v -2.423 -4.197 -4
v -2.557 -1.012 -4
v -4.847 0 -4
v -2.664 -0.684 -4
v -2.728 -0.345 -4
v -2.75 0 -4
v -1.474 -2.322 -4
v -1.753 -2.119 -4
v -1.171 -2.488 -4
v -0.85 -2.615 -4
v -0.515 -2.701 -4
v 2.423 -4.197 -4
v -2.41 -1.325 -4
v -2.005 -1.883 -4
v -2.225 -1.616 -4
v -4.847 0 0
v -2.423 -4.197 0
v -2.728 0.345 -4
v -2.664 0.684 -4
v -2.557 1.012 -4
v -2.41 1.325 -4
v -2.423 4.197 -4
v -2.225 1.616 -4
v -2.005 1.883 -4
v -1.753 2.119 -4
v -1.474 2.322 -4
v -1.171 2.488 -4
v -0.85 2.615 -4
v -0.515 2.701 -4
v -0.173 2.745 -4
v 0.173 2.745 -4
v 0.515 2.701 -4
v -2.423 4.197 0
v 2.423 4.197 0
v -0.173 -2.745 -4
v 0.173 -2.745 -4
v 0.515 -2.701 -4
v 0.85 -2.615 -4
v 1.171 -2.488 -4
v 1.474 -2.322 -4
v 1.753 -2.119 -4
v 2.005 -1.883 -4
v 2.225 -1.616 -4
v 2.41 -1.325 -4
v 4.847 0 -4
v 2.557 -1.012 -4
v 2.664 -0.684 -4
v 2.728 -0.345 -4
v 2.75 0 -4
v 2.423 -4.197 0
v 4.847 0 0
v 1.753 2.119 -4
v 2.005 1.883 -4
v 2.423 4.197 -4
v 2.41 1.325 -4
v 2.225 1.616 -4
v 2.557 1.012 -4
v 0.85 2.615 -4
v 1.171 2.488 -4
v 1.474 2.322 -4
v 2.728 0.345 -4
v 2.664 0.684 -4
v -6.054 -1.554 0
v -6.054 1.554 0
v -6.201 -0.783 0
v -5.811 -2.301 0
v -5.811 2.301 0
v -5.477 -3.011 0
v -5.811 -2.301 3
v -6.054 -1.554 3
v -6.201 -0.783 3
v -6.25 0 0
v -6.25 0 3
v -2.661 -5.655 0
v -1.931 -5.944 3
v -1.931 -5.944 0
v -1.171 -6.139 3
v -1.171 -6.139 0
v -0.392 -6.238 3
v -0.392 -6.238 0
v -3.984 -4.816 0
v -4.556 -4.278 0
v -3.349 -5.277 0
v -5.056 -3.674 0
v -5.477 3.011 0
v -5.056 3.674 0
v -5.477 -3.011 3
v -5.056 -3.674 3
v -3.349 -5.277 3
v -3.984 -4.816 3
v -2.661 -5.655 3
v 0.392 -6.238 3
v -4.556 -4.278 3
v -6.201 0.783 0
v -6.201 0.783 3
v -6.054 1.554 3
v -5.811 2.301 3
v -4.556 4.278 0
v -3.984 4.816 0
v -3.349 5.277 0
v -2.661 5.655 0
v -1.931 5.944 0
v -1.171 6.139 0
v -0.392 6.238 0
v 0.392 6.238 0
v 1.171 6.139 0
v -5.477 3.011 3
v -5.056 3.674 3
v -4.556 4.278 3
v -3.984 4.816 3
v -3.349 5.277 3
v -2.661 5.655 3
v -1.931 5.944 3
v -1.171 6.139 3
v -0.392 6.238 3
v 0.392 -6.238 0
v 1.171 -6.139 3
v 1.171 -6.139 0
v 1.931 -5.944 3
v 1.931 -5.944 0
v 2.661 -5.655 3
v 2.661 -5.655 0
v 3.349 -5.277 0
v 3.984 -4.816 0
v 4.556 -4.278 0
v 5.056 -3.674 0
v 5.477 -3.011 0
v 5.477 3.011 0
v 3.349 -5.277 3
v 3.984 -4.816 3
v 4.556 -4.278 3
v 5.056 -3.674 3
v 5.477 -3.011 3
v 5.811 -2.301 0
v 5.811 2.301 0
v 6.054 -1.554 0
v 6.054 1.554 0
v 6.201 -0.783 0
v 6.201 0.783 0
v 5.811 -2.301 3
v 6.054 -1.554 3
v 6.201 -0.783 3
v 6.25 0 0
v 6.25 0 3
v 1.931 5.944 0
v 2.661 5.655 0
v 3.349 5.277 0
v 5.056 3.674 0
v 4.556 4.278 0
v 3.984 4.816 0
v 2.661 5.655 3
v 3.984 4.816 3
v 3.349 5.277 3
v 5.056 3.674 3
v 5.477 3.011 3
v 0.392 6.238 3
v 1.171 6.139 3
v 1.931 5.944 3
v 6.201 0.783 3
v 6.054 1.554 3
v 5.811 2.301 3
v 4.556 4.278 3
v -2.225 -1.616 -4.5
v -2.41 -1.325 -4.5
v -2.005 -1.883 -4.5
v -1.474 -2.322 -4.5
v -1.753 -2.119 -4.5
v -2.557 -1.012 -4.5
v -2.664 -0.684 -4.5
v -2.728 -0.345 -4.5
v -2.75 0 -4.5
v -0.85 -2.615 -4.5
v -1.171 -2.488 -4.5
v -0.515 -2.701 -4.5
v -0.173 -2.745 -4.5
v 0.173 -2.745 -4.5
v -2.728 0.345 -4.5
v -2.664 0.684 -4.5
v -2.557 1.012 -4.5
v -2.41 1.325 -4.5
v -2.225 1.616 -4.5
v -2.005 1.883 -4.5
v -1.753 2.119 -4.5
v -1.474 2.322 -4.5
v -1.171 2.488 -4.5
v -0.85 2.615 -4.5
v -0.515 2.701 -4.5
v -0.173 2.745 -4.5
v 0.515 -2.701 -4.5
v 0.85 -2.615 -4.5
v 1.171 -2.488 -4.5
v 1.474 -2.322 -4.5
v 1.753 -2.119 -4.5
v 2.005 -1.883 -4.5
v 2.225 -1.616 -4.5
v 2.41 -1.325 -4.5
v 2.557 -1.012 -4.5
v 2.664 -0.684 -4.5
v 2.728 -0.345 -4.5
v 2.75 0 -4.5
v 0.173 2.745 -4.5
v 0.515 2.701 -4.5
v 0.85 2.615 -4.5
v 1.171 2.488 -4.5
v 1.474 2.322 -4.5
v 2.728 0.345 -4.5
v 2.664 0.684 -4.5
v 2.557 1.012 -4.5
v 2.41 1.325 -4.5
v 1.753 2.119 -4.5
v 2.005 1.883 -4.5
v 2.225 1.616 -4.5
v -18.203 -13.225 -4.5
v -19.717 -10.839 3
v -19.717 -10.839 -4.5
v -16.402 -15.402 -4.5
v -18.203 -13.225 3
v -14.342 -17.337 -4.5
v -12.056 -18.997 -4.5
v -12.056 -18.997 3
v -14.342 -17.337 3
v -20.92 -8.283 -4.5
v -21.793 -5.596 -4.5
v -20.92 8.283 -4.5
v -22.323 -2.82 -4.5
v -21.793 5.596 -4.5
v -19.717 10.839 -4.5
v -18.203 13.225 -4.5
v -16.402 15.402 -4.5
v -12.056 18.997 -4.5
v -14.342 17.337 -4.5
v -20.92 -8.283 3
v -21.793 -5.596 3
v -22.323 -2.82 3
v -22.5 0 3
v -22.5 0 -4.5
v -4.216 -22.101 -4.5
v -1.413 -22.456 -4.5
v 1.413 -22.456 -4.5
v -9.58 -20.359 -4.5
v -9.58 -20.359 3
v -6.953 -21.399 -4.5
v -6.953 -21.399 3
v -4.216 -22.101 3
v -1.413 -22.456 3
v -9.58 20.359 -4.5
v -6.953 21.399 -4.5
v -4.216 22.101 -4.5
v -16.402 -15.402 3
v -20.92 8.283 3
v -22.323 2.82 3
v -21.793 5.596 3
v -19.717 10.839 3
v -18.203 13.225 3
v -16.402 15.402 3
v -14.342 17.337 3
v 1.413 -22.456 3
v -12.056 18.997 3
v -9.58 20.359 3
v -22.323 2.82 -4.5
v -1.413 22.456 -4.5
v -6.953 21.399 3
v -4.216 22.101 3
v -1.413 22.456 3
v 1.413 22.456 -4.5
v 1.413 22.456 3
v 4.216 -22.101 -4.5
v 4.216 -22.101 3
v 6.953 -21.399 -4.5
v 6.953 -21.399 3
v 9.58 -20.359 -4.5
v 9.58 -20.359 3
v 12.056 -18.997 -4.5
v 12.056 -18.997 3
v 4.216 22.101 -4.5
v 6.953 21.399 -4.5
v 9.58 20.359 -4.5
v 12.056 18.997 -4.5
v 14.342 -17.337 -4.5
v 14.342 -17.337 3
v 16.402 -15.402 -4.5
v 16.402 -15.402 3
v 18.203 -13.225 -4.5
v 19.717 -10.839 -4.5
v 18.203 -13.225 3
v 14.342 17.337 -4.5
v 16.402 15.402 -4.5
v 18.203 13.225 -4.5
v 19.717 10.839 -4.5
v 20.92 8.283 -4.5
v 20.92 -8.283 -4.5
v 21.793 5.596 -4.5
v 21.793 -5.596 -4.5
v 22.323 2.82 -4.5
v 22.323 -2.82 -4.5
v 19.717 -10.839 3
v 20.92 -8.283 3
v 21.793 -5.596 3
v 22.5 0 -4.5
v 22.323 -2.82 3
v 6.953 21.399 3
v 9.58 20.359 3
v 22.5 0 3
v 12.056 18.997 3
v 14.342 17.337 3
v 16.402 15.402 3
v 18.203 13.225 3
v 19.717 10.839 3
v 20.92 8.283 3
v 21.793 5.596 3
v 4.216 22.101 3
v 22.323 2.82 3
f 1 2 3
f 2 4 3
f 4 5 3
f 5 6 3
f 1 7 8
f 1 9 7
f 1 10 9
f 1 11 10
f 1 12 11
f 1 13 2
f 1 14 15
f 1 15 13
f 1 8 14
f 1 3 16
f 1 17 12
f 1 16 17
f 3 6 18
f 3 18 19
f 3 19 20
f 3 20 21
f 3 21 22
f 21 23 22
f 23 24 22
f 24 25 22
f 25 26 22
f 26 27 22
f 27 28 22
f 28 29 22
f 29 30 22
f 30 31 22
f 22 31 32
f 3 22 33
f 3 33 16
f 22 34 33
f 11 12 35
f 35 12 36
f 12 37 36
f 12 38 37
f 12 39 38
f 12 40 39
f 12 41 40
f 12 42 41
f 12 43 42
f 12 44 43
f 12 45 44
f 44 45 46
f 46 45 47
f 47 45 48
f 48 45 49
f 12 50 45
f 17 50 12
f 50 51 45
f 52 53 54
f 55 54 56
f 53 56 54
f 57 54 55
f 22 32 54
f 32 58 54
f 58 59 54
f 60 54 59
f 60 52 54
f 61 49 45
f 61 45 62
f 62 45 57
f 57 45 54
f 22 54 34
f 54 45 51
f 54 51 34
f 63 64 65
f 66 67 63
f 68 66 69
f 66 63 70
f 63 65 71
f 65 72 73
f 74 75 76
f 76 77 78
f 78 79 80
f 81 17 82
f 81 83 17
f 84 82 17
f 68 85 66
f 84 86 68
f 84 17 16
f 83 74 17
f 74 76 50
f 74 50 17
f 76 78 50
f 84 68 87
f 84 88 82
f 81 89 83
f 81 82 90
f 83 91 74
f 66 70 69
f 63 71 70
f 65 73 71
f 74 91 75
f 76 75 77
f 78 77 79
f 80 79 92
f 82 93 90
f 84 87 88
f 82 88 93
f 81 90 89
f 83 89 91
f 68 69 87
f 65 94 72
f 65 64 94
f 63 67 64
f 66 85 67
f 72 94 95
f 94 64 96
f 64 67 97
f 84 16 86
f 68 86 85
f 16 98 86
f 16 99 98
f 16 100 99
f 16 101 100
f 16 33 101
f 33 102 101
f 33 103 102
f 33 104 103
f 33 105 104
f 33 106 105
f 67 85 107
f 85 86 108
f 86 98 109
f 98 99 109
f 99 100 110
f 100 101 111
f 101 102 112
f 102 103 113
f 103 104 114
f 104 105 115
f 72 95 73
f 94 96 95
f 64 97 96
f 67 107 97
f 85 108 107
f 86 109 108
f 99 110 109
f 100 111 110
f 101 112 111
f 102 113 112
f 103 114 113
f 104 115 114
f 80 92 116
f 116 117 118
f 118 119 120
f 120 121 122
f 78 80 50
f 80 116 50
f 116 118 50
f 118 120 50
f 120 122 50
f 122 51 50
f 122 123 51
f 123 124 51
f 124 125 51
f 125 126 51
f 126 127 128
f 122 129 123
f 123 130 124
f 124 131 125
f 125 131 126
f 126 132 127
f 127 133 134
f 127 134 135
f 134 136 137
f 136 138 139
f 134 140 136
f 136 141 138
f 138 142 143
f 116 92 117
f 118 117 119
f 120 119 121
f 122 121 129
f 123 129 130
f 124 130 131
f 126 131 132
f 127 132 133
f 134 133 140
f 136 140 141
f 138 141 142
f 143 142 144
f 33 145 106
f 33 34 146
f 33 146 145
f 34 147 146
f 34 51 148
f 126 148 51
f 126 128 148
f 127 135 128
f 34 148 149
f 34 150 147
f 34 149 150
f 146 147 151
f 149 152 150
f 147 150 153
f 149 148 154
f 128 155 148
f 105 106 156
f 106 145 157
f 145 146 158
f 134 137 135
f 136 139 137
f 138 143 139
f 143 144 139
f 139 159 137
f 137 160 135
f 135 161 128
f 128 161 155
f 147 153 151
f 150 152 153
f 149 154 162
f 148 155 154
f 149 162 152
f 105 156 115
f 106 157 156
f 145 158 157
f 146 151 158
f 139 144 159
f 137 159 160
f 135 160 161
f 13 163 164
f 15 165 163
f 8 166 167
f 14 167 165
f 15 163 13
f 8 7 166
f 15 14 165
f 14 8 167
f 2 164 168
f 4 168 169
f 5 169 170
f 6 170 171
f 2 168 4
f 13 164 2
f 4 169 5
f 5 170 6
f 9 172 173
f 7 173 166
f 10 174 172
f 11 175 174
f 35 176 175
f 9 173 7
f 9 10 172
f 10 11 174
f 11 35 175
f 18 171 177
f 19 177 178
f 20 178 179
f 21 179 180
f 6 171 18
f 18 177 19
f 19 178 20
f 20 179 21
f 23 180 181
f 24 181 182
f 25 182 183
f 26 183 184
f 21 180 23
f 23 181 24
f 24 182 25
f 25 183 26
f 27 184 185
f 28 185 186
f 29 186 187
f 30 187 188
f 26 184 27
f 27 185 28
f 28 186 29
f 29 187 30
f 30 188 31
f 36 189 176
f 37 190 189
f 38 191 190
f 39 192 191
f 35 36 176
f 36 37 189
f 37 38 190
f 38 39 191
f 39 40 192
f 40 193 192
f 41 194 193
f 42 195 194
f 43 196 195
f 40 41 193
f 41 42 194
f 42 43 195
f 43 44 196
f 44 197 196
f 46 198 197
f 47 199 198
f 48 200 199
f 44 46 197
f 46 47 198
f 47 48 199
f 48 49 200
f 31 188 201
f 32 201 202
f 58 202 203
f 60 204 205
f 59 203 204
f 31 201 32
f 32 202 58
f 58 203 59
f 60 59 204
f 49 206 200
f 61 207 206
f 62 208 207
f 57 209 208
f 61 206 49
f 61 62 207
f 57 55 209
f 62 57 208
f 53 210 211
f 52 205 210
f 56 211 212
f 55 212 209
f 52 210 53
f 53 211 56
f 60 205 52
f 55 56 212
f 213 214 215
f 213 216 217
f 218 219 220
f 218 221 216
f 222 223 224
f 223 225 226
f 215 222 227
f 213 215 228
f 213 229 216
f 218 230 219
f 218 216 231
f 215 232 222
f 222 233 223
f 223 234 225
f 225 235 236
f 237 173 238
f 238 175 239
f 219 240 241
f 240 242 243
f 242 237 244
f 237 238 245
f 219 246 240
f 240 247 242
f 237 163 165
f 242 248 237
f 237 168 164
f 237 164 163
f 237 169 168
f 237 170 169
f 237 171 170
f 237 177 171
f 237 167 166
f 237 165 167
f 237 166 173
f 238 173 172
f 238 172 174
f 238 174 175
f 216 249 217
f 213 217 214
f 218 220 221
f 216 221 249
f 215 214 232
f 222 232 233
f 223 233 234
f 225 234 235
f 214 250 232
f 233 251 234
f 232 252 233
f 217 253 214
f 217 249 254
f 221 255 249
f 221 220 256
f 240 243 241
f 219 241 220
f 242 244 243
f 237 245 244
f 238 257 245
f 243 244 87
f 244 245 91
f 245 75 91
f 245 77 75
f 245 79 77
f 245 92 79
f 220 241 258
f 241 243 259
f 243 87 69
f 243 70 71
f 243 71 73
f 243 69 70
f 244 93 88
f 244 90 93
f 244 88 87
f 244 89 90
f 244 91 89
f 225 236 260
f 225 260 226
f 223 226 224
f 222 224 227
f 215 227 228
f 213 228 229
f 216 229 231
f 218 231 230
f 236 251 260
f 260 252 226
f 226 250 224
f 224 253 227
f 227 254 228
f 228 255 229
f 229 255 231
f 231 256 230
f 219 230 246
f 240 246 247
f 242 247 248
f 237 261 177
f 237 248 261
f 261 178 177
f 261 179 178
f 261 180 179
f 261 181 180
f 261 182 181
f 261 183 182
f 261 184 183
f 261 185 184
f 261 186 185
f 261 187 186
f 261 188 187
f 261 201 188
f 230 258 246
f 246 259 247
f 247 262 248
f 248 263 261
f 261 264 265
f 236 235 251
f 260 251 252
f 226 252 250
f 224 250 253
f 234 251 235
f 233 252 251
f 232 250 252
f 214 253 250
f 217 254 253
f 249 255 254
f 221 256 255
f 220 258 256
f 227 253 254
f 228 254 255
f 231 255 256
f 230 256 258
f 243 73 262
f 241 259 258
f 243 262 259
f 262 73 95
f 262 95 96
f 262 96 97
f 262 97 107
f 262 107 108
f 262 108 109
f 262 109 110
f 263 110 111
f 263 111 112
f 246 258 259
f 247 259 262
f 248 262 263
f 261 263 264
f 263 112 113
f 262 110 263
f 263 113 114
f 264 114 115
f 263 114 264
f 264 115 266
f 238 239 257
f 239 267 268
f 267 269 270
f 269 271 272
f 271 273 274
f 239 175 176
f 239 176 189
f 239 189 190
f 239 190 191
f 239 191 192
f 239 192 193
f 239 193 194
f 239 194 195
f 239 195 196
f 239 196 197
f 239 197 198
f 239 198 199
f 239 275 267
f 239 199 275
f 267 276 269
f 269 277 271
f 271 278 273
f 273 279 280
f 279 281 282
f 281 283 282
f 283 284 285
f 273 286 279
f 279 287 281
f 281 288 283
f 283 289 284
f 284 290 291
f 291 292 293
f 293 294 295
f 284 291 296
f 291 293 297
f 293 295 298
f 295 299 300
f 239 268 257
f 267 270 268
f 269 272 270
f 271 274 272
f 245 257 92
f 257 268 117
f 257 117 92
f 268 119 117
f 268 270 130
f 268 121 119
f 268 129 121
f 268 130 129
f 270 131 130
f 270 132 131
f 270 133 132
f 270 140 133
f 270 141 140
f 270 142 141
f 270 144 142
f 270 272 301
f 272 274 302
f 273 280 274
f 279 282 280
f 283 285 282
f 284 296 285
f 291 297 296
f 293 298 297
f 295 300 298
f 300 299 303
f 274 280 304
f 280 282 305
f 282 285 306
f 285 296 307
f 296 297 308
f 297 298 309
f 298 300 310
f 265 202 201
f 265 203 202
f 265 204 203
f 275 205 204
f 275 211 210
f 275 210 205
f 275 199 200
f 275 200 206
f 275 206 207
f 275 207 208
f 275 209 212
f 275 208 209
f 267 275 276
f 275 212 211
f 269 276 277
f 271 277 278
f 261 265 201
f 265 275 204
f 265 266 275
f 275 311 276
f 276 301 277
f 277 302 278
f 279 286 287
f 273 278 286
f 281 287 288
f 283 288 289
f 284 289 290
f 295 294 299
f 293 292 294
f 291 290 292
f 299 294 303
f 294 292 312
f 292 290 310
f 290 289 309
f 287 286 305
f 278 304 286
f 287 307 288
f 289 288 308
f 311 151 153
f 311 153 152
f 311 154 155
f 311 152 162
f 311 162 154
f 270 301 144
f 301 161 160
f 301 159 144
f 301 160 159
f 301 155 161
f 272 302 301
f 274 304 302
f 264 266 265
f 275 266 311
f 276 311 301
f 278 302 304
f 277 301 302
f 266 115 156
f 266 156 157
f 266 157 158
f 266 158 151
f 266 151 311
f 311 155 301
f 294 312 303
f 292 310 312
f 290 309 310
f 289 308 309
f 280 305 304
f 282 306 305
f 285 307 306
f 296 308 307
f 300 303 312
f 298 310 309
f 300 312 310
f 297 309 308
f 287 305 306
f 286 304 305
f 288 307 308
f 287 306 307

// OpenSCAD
$fn = 50;


difference() {
	union() {
		translate(v = [0, 0, -4.5000000000]) {
			cylinder(h = 7.5000000000, r = 22.5000000000);
		}
	}
	union() {
		translate(v = [0, 0, 0]) {
			rotate(a = [0, 0, 0]) {
				difference() {
					union() {
						translate(v = [0, 0, -4]) {
							linear_extrude(height = 4) {
								polygon(points = [[4.8468000000, 0.0000000000], [2.4234000000, 4.1974519271], [-2.4234000000, 4.1974519271], [-4.8468000000, 0.0000000000], [-2.4234000000, -4.1974519271], [2.4234000000, -4.1974519271]]);
							}
						}
					}
					union();
				}
			}
		}
		#cylinder(h = 3, r = 6.2500000000);
		#translate(v = [0, 0, -100.0000000000]) {
			cylinder(h = 200, r = 2.7500000000);
		}
	}
}
